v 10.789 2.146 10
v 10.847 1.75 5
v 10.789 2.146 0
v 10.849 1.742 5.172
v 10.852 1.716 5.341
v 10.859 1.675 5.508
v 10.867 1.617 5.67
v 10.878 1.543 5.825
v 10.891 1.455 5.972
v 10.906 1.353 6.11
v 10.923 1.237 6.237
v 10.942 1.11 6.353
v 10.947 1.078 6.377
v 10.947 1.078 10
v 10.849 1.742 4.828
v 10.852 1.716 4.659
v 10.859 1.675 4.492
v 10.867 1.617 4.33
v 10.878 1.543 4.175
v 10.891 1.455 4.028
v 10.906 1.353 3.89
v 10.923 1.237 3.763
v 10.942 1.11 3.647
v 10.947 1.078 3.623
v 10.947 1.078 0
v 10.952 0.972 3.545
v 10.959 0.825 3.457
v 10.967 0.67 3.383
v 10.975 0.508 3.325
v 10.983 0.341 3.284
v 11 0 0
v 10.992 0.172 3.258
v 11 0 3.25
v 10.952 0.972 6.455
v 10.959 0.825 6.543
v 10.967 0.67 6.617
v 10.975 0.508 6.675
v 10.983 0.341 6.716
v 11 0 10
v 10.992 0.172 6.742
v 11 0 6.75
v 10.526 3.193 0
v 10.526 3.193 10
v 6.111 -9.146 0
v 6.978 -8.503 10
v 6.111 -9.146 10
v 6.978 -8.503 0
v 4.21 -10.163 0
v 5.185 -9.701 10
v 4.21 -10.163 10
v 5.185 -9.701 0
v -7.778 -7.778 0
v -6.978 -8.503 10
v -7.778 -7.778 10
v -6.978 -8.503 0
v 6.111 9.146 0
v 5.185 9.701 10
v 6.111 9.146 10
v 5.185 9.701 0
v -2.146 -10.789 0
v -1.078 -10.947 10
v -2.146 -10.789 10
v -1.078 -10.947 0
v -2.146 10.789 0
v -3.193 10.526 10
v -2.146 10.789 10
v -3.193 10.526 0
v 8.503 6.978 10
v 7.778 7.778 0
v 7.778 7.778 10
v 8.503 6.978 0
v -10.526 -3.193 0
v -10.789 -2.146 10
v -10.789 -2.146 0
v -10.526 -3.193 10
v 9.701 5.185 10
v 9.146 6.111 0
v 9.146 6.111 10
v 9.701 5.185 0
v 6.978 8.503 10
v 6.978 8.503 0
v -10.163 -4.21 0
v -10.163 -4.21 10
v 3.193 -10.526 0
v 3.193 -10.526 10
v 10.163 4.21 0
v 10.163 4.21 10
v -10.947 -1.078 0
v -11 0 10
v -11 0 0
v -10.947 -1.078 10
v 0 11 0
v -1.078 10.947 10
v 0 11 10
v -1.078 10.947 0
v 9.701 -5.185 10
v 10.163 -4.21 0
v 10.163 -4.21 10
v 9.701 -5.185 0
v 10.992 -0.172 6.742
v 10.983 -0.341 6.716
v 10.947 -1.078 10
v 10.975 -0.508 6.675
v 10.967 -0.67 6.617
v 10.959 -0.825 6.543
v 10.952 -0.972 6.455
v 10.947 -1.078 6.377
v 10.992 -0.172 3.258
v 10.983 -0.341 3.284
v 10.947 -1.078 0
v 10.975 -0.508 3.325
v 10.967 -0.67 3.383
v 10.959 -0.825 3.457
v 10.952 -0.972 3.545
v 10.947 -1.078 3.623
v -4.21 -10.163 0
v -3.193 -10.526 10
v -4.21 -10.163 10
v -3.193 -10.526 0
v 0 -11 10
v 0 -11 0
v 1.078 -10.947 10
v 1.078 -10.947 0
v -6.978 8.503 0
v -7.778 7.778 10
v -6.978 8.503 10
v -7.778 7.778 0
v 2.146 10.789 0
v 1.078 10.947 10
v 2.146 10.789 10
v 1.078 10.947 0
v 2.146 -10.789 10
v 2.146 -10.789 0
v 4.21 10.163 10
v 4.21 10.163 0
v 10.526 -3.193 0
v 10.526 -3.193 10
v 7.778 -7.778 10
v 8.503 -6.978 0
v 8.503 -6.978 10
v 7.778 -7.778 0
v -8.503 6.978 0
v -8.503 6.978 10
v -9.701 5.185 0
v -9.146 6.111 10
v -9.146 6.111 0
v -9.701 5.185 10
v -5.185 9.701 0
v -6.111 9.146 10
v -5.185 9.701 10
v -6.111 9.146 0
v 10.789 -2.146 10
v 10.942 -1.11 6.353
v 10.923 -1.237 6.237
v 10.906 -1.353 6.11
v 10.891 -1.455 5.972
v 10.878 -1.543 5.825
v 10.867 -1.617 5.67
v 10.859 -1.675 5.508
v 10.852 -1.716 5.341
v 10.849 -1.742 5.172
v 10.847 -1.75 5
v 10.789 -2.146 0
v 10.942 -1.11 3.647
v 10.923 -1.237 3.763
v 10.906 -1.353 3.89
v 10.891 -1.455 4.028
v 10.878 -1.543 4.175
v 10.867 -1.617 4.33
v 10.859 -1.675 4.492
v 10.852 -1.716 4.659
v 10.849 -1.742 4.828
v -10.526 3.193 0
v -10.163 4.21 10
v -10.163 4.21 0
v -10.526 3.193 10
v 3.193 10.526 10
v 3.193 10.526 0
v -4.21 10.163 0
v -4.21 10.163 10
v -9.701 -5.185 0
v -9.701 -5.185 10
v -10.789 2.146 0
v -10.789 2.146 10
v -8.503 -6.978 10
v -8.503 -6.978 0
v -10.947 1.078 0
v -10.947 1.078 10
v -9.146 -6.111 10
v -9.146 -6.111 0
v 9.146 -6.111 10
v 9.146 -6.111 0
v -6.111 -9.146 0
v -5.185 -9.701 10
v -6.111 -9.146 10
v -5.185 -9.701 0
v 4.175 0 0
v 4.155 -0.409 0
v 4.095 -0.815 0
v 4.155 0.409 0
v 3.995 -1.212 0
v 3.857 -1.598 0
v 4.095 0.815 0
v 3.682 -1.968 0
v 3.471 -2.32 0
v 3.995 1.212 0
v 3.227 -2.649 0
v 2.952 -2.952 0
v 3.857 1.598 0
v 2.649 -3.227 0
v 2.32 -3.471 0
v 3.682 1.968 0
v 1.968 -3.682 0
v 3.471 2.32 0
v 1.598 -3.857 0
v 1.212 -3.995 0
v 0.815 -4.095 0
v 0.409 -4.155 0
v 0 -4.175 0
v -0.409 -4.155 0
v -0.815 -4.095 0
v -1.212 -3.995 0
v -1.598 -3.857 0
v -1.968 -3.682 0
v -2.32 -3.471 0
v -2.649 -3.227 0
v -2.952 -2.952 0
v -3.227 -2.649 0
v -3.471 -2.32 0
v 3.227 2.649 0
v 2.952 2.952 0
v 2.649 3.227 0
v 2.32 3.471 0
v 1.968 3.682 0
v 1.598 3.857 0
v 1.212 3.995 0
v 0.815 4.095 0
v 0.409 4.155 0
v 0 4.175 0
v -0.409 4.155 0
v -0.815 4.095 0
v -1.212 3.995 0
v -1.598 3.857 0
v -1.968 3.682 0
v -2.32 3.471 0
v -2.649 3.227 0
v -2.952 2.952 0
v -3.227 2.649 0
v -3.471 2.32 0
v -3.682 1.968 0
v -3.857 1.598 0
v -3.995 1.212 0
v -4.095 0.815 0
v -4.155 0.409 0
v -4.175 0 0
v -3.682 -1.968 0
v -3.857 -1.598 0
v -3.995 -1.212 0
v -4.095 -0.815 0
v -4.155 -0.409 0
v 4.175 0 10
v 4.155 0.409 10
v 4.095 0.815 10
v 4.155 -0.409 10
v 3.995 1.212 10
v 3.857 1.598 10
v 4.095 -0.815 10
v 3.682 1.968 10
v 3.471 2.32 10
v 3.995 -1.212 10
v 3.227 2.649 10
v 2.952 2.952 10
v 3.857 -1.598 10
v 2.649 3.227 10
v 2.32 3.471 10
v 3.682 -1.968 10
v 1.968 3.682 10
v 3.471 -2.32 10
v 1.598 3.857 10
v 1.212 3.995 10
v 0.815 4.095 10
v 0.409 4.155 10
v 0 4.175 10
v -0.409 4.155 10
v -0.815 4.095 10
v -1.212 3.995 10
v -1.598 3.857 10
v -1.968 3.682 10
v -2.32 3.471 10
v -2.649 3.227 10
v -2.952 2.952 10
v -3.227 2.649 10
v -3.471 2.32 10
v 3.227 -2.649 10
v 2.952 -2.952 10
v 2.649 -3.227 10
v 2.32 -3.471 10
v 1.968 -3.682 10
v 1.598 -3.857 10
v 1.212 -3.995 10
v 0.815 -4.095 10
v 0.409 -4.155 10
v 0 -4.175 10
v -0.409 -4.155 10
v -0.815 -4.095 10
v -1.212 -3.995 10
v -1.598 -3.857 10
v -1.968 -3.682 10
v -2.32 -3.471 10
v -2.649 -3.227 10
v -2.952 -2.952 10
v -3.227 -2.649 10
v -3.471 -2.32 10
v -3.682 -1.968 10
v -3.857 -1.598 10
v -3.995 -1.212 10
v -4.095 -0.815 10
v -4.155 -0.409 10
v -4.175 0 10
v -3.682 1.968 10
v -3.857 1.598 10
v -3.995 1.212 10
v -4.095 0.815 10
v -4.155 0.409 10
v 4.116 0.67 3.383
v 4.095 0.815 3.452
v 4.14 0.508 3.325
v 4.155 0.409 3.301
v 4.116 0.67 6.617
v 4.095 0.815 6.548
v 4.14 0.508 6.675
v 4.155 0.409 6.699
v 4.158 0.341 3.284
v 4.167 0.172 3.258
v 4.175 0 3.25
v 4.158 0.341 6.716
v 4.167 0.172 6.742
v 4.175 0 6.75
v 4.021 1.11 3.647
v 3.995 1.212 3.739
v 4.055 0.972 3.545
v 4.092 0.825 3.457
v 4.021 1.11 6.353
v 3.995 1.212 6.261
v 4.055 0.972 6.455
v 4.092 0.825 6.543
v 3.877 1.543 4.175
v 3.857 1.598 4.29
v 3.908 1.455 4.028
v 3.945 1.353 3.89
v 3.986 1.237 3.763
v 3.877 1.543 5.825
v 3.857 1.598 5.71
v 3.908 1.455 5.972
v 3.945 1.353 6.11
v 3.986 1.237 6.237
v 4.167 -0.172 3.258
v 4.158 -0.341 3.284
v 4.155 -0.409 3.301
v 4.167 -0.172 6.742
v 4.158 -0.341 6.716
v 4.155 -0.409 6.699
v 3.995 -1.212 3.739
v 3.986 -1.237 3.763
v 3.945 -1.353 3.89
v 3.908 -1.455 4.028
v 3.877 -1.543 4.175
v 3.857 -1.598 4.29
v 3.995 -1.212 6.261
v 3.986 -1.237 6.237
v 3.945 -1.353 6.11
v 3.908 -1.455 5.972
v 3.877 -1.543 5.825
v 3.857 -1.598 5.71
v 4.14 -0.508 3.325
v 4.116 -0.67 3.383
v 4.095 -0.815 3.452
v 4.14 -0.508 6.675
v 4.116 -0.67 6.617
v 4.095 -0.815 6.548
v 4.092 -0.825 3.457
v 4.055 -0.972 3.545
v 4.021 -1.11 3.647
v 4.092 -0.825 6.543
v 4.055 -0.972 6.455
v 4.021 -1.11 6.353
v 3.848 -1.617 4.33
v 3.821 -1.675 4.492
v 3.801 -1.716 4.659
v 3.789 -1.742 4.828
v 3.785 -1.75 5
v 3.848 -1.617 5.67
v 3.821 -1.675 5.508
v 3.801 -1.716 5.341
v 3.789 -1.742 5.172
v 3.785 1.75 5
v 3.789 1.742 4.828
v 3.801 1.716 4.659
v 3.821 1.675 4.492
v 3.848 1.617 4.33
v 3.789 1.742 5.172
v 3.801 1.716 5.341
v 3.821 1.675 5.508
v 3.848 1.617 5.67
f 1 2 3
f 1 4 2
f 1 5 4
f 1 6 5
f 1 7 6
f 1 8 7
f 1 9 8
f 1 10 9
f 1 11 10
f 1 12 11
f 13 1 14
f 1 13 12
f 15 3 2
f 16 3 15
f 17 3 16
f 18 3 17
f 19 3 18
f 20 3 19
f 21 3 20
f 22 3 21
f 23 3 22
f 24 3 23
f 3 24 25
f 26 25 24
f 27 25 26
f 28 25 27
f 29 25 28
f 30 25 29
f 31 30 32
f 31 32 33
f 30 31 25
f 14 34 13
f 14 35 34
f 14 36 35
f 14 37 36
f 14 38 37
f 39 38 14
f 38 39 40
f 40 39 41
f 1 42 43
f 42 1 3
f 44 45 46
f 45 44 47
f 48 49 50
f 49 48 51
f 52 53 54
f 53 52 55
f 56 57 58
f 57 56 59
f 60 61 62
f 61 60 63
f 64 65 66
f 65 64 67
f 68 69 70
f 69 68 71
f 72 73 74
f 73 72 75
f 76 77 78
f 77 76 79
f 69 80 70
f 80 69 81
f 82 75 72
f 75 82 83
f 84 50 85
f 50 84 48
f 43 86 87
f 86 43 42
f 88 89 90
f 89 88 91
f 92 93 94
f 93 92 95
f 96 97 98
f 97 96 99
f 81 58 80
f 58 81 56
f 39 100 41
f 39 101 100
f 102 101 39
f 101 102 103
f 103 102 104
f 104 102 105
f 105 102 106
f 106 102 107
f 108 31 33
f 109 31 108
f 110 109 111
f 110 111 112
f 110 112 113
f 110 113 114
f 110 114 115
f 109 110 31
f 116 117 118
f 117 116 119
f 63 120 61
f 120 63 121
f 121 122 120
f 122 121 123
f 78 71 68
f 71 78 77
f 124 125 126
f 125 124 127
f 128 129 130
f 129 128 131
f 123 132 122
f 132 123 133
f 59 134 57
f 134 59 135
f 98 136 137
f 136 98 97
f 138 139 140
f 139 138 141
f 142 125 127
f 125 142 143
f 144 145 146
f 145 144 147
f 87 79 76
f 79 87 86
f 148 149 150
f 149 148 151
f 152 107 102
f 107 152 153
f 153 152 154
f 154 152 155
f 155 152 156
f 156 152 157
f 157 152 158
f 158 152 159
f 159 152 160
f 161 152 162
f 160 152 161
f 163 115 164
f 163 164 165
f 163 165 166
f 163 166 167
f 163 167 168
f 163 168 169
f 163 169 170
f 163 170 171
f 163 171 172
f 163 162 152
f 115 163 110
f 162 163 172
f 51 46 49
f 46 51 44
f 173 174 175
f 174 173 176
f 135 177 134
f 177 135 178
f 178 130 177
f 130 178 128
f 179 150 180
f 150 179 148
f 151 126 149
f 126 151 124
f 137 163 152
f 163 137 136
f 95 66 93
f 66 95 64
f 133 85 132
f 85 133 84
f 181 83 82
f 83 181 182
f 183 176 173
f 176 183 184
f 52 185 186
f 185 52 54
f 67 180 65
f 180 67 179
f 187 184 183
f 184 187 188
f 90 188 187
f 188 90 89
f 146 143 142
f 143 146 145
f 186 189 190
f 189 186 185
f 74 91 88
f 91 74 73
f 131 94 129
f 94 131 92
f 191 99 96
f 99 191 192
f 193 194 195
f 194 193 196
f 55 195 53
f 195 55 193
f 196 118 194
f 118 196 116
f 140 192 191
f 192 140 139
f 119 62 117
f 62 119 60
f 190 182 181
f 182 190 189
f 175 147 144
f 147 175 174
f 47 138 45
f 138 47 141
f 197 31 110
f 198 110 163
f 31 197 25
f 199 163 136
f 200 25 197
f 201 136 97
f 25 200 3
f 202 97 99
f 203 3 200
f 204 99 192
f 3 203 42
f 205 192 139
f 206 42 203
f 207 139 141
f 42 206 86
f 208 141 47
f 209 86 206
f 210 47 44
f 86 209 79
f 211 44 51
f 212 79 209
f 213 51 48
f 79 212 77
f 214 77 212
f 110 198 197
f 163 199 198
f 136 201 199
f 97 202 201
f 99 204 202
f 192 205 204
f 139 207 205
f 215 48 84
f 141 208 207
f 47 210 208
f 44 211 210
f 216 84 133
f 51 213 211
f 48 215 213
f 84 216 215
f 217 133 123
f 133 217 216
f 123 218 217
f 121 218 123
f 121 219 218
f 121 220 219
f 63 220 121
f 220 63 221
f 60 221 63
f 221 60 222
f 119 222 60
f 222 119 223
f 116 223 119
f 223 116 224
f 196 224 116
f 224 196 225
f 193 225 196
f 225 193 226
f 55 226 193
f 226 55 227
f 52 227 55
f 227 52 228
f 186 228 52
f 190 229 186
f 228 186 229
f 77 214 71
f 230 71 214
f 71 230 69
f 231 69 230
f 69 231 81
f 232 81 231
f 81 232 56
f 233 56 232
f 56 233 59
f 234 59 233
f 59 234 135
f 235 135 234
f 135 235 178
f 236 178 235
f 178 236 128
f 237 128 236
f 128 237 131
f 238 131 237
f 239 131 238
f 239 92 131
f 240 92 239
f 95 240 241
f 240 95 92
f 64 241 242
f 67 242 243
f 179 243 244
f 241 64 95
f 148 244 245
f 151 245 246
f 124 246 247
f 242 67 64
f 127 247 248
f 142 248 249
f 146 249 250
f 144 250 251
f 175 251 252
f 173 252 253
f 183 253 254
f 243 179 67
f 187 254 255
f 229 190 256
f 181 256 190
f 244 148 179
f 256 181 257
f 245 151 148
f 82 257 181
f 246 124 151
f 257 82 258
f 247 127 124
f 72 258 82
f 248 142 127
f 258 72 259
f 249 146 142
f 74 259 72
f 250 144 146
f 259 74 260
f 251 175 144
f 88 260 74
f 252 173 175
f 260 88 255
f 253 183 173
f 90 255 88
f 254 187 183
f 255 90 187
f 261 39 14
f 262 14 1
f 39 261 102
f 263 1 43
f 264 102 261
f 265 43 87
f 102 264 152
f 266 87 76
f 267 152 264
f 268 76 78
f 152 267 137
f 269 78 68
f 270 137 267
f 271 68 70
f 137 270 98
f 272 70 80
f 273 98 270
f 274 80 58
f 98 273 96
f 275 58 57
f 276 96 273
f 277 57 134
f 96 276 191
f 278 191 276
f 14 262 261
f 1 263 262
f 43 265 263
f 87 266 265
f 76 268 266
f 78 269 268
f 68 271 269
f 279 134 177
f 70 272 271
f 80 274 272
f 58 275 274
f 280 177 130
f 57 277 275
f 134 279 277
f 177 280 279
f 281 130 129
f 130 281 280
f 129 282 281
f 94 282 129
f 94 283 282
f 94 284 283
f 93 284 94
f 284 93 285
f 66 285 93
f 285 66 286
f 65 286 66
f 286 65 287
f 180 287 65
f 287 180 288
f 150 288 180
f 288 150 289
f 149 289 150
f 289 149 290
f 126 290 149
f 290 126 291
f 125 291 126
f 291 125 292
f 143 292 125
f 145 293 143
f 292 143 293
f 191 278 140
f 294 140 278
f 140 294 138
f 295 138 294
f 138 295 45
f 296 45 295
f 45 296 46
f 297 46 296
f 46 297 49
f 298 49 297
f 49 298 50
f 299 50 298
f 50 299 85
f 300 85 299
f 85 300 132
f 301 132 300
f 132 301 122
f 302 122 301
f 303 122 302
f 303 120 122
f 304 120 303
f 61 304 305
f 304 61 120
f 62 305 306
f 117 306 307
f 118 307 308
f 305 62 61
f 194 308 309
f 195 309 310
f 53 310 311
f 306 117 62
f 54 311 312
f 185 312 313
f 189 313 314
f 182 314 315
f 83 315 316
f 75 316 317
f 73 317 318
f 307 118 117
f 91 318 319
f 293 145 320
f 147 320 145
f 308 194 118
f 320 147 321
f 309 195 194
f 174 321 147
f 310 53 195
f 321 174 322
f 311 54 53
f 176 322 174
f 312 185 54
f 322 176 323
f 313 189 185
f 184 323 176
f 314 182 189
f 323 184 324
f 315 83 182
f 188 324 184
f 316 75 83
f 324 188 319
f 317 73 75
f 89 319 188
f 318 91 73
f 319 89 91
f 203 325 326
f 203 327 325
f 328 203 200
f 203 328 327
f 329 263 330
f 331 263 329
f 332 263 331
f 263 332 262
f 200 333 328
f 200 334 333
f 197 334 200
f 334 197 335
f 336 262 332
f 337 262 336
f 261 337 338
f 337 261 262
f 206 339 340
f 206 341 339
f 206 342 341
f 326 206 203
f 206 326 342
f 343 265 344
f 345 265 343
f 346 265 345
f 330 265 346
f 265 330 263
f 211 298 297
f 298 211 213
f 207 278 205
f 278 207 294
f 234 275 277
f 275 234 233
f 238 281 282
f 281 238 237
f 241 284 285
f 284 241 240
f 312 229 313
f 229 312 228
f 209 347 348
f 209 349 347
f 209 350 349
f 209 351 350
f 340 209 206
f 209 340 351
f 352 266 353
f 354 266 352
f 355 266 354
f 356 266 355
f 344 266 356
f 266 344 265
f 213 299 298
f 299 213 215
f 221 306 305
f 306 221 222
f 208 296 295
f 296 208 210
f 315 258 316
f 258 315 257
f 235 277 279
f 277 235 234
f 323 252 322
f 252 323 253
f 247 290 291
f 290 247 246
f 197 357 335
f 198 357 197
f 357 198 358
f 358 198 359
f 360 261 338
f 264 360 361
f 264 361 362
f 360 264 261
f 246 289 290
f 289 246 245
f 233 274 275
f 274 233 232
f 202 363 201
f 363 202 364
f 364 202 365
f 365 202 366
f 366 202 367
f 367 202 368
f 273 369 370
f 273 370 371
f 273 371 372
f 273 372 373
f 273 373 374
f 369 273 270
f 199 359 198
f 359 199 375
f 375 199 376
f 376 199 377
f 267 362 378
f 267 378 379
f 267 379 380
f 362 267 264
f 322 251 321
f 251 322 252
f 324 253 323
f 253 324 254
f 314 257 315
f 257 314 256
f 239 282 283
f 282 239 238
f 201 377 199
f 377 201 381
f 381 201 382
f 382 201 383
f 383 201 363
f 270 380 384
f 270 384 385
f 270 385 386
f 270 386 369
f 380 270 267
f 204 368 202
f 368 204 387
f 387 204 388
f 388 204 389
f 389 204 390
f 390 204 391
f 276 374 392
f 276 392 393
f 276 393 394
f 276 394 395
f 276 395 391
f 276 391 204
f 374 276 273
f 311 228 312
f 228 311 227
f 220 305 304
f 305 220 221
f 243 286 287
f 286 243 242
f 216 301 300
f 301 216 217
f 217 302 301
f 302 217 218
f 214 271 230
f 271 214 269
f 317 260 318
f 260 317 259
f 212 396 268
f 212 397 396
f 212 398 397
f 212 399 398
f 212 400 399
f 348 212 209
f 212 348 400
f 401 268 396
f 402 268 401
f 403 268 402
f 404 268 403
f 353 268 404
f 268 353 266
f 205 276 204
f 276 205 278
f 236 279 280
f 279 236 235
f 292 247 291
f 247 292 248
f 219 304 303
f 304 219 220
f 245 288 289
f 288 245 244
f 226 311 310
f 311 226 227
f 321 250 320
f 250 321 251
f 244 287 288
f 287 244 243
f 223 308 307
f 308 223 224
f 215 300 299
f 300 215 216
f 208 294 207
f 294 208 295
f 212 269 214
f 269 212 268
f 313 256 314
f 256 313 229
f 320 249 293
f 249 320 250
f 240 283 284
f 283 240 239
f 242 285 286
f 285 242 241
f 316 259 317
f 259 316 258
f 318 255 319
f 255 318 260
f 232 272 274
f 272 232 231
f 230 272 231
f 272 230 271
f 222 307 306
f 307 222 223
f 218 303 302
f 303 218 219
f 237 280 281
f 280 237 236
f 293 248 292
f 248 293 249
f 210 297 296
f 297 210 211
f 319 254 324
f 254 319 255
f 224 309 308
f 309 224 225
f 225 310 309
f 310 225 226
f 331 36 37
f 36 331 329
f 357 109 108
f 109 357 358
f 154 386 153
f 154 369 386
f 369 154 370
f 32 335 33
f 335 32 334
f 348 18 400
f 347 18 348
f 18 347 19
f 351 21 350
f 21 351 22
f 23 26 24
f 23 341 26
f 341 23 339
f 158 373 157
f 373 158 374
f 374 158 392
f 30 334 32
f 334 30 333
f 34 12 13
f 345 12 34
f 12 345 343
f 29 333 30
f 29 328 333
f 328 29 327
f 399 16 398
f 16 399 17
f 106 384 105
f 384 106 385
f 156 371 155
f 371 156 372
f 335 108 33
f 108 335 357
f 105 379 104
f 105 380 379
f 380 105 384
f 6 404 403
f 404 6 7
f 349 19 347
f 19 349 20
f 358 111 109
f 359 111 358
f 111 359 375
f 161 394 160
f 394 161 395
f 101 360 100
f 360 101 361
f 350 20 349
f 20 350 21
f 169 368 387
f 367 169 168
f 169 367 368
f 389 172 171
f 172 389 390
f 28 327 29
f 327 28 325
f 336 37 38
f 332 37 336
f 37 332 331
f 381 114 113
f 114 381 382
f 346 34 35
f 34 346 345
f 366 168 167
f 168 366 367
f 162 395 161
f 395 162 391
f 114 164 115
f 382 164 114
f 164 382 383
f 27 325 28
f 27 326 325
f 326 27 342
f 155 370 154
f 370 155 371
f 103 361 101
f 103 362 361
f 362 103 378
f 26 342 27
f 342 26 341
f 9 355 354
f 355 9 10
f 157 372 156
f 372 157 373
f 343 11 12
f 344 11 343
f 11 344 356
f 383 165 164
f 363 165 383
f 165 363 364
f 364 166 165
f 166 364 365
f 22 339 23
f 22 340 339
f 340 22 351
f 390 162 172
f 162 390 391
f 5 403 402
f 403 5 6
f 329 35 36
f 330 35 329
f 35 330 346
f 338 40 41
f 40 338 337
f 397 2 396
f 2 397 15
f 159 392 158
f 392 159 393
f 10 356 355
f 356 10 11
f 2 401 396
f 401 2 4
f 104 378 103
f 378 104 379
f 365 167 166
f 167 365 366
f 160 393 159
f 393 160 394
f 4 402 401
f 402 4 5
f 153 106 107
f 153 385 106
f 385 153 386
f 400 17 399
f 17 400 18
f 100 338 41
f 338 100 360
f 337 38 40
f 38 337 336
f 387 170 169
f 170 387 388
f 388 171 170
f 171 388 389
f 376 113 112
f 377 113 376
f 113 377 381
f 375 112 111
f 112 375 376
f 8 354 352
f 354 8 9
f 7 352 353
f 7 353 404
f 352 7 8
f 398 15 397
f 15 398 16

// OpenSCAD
// file: parameters.scad
// =============================================================================
// Gen-V Dual-rotor NANO-GAP AFPM — WOUND-AWARE parameters (HARD GATE)
// PRIMARY challenger vs Gen-S. Thinner m2m + more copper (140 t).
// =============================================================================

// --- Wire / wind budget (26 AWG, ~1 lb spool ≈ 390 m bare-equiv) --------------
wire_awg            = 26;
wire_od             = 0.45;     // insulated OD mm
turns               = 140;      // +10 vs Gen-S
fill                = 0.70;
layers_per_face     = 2;        // axial layers proud of EACH flange
wind_build_axial    = layers_per_face * wire_od * fill;   // 0.63 mm
wind_build_radial   = 3 * wire_od * fill;                 // 0.945 mm

// --- Pancake former (bare STL) — thinner web/flange than Gen-S ---------------
coil_id_r           = 23.0;     // larger window vs Gen-S 24–56
coil_od_r           = 58.0;
span_deg            = 26.0;     // 12 stations × 30° pitch
former_web          = 2.0;
flange_t            = 0.75;
wall                = 1.2;
slot_w              = 2.4;
mount_hole          = 3.5;
tab_len             = 7.0;

former_bare_h       = former_web + 2 * flange_t;            // 3.5 mm
coil_envelope_h     = former_bare_h + 2 * wind_build_axial; // 4.76 mm

// --- Running clearance (magnet face → WOUND face) EACH side ------------------
run_clear           = 0.70;     // PASS ≥ 0.70 (prefer ≥0.70)
gap_spacer_h        = run_clear + wind_build_axial;         // 1.33 mm
m2m                 = coil_envelope_h + 2 * run_clear;      // 6.16 mm (beats Gen-S 6.66)

// --- Mid stator (12 pancakes 3φ; winds proud both faces) ---------------------
coil_stations       = 12;
bay_r_in            = coil_id_r - 2.0 - wind_build_radial;
bay_r_out           = coil_od_r + 2.0 + wind_build_radial;
bay_span            = span_deg + 4.0;
bay_offset          = 2.0;
stator_thick        = former_bare_h;                        // winds proud ±Z
stator_od           = 156.0;
shaft_clear_stator  = 36.0;
coil_mount_r        = 28.0;

// --- Rotors (×2) — 8×Ø20 + 24×Ø5 Halbach each face ---------------------------
large_pocket_d      = 20.3;
small_pocket_d      = 5.3;
pocket_h            = 5.2;
large_n             = 8;
R_large             = 52.0;
R_small_inner       = 40.0;
R_small_mid         = 52.0;
R_small_outer       = 64.0;
carrier_od          = 152.0;
carrier_thick       = 7.5;
hub_h               = 10.0;
hub_od              = 30.0;
rotor_b_offset_deg  = 22.5;

// --- Modular MAX interface (Gen-E family) ------------------------------------
shaft_bore          = 8.35;
bearing_d           = 21.85;
bearing_h           = 7.2;
m3_clear            = 3.5;
bolt_r_inner        = 36.0;
bolt_n_inner        = 6;
flange_bolt_r       = 72.0;
flange_bolt_n       = 6;
brace_r             = 68.0;
brace_d             = 4.3;
brace_n             = 4;

spacer_pad_od       = 14.0;
spacer_pad_id       = m3_clear;
endbell_od          = 156.0;
endbell_thick       = 8.0;
endbell_shaft_clear = 10.0;

$fn = 64;
// main file
// Gen-V shaft collar — print ×2–4
include <parameters.scad>;
$fn = 64;
od = 22; id = shaft_bore; h = 10; set_d = 3.5;
difference() {
    cylinder(d=od, h=h);
    translate([0, 0, -0.1]) cylinder(d=id, h=h + 0.2);
    translate([0, 0, h/2]) rotate([0, 90, 0]) cylinder(d=set_d, h=od);
}
